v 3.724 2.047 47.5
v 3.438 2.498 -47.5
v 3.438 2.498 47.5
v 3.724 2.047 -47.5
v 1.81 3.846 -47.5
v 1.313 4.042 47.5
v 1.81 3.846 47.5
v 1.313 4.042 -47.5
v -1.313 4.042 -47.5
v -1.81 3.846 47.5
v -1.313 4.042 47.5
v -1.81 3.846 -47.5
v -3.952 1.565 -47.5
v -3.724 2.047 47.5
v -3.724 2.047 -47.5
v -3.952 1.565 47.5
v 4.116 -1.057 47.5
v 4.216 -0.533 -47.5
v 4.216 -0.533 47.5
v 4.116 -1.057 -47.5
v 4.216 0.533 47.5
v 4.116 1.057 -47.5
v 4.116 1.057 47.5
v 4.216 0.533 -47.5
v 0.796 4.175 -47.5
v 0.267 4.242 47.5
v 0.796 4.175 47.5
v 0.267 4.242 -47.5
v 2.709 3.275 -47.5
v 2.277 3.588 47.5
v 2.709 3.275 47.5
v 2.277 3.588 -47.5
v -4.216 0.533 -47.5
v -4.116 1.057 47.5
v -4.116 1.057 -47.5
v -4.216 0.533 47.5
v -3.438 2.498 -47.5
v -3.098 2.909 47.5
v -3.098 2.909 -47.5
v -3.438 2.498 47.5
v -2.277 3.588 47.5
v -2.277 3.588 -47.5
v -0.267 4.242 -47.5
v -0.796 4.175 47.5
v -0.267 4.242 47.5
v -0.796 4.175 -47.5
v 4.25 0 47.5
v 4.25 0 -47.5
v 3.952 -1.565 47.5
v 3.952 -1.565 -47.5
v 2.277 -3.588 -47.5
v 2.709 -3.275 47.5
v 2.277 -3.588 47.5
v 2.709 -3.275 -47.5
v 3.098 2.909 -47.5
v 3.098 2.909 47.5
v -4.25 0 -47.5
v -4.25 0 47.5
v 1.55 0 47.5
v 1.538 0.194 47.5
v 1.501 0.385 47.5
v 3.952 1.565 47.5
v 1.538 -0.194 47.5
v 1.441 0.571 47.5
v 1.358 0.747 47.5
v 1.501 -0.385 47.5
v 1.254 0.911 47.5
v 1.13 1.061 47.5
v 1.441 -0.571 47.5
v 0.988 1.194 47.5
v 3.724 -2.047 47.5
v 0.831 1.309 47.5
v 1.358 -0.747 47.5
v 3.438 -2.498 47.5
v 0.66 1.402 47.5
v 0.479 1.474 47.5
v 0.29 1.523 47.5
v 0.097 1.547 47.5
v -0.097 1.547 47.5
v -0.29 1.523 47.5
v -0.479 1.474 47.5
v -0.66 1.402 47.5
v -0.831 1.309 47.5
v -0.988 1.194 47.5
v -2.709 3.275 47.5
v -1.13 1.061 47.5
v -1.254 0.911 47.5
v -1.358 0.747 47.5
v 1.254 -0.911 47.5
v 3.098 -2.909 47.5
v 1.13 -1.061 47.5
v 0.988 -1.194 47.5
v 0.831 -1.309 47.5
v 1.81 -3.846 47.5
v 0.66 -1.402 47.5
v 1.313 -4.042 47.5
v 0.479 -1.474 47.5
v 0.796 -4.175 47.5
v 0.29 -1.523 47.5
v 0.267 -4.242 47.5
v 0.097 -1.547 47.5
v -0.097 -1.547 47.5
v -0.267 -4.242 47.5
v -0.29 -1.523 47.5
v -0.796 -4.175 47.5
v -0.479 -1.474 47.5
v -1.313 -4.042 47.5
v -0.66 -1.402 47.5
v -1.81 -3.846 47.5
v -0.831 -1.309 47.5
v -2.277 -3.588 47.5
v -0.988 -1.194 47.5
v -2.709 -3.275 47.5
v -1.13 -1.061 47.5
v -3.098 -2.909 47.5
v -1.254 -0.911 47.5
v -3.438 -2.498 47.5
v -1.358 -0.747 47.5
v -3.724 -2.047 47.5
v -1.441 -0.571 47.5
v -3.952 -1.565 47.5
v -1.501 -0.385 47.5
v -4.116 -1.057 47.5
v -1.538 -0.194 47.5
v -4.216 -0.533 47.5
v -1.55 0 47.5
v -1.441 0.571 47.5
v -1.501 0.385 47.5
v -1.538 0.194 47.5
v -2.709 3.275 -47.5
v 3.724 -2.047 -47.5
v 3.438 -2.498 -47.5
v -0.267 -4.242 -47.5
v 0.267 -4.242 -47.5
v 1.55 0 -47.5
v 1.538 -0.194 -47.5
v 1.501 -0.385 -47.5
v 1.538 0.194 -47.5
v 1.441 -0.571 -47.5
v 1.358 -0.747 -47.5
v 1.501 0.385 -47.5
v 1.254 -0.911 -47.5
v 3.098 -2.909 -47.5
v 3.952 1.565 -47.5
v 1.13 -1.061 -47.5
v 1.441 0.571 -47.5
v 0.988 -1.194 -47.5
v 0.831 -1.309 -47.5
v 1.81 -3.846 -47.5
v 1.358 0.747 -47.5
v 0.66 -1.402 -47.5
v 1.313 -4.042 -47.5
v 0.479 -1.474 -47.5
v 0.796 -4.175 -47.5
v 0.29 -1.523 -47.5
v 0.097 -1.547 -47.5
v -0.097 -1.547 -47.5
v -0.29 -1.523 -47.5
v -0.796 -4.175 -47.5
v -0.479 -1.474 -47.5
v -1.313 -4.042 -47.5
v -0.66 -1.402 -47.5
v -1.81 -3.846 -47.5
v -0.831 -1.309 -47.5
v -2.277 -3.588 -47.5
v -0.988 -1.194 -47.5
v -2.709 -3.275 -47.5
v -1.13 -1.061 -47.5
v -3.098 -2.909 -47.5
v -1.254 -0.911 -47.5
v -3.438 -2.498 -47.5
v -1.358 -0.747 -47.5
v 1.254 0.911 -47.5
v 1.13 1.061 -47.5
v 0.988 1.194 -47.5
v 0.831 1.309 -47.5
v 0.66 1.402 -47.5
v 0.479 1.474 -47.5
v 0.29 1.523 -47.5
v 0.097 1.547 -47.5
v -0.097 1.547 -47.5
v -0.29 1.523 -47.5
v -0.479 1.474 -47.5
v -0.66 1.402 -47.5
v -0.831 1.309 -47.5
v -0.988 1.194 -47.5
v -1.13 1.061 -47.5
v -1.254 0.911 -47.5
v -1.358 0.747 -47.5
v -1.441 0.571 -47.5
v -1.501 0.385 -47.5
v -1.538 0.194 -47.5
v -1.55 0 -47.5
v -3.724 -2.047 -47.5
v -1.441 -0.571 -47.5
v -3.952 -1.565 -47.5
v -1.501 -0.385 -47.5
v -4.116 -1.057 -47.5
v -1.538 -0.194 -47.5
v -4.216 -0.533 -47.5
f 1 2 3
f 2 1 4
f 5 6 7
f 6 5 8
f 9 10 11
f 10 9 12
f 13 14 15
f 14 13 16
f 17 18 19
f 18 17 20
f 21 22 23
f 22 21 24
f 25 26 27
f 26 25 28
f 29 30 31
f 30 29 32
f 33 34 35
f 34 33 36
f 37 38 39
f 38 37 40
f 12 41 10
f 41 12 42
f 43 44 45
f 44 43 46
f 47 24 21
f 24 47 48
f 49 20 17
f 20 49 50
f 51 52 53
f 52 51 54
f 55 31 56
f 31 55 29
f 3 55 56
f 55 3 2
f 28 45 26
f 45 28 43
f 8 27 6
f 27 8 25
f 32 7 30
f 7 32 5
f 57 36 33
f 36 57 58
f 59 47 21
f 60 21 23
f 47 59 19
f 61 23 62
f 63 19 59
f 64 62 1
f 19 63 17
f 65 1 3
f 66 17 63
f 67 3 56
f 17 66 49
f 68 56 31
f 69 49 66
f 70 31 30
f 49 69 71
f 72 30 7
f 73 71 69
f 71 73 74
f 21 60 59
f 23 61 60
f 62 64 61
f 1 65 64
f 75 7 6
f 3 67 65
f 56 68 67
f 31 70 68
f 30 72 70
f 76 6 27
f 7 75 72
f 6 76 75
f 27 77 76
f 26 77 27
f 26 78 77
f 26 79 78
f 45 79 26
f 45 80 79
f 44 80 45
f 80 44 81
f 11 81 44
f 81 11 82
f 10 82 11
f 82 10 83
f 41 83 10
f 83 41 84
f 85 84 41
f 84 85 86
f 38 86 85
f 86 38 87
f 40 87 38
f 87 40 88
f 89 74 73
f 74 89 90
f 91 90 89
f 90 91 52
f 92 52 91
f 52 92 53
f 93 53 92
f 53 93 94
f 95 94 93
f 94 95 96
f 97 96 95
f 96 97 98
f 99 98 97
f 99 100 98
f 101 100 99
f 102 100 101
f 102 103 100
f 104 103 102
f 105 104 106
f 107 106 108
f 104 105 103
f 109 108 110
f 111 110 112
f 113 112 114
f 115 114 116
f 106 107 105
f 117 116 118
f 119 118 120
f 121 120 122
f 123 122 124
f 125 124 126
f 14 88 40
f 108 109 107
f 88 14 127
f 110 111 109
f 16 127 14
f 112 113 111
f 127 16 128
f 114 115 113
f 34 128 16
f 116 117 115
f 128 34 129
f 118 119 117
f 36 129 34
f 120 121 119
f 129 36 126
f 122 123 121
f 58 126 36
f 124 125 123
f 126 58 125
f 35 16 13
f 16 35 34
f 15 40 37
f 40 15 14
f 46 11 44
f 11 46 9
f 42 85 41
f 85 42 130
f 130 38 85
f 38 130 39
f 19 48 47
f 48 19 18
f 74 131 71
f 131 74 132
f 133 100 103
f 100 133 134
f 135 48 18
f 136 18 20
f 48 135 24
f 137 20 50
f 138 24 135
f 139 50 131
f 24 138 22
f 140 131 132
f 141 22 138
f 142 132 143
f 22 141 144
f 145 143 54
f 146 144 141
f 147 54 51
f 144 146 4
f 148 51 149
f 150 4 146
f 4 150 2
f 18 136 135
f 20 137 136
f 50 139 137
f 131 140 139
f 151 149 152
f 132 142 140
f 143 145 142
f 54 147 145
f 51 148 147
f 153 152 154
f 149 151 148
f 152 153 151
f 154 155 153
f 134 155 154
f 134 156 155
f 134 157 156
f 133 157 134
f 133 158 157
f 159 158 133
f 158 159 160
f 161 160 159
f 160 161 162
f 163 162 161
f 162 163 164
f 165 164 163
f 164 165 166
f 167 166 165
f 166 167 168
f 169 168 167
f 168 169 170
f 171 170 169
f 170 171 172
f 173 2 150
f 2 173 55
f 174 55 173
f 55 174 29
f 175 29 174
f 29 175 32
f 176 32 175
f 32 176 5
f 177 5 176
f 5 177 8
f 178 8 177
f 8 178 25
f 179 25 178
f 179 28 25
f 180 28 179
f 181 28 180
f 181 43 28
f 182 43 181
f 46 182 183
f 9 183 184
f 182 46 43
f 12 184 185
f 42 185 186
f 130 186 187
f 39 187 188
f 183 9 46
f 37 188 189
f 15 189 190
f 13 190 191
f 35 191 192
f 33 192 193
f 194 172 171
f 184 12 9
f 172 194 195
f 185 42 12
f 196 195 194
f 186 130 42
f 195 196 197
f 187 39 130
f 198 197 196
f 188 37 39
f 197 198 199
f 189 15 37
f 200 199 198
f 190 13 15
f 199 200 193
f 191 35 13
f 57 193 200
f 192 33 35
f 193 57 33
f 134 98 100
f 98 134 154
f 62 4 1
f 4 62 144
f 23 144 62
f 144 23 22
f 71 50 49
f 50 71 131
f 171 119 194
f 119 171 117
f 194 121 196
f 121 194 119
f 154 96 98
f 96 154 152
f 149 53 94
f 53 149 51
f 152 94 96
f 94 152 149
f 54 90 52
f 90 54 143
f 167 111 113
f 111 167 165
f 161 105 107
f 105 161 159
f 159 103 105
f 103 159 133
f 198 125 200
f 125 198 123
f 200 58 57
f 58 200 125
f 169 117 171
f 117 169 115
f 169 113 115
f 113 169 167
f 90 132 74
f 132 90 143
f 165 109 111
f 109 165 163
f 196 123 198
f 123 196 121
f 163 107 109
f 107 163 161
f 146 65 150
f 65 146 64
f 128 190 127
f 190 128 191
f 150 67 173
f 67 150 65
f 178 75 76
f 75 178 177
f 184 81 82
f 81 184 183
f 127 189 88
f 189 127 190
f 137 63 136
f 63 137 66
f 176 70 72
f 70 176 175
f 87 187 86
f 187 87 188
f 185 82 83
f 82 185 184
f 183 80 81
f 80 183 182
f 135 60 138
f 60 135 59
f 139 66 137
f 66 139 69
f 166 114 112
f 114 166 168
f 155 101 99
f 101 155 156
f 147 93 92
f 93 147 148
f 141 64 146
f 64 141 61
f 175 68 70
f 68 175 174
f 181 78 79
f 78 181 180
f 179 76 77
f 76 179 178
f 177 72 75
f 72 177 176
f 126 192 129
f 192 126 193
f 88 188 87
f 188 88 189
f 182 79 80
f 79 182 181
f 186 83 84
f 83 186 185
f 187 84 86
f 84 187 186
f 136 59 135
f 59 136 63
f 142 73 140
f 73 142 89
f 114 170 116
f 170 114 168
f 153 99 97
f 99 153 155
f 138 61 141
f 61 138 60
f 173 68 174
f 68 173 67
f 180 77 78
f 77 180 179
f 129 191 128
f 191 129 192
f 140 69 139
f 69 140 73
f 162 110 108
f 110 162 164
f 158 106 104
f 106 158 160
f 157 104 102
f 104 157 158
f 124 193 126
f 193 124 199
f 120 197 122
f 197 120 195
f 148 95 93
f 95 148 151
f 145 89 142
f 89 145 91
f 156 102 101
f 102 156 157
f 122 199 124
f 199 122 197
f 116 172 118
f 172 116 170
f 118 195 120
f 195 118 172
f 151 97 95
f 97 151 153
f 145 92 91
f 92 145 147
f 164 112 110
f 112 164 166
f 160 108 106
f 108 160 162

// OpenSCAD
$fn = 50;


difference() {
	union() {
		translate(v = [0, 0, -47.5000000000]) {
			cylinder(h = 95, r = 4.2500000000);
		}
	}
	union() {
		translate(v = [0, 0, -100.0000000000]) {
			cylinder(h = 200, r = 1.5500000000);
		}
	}
}
